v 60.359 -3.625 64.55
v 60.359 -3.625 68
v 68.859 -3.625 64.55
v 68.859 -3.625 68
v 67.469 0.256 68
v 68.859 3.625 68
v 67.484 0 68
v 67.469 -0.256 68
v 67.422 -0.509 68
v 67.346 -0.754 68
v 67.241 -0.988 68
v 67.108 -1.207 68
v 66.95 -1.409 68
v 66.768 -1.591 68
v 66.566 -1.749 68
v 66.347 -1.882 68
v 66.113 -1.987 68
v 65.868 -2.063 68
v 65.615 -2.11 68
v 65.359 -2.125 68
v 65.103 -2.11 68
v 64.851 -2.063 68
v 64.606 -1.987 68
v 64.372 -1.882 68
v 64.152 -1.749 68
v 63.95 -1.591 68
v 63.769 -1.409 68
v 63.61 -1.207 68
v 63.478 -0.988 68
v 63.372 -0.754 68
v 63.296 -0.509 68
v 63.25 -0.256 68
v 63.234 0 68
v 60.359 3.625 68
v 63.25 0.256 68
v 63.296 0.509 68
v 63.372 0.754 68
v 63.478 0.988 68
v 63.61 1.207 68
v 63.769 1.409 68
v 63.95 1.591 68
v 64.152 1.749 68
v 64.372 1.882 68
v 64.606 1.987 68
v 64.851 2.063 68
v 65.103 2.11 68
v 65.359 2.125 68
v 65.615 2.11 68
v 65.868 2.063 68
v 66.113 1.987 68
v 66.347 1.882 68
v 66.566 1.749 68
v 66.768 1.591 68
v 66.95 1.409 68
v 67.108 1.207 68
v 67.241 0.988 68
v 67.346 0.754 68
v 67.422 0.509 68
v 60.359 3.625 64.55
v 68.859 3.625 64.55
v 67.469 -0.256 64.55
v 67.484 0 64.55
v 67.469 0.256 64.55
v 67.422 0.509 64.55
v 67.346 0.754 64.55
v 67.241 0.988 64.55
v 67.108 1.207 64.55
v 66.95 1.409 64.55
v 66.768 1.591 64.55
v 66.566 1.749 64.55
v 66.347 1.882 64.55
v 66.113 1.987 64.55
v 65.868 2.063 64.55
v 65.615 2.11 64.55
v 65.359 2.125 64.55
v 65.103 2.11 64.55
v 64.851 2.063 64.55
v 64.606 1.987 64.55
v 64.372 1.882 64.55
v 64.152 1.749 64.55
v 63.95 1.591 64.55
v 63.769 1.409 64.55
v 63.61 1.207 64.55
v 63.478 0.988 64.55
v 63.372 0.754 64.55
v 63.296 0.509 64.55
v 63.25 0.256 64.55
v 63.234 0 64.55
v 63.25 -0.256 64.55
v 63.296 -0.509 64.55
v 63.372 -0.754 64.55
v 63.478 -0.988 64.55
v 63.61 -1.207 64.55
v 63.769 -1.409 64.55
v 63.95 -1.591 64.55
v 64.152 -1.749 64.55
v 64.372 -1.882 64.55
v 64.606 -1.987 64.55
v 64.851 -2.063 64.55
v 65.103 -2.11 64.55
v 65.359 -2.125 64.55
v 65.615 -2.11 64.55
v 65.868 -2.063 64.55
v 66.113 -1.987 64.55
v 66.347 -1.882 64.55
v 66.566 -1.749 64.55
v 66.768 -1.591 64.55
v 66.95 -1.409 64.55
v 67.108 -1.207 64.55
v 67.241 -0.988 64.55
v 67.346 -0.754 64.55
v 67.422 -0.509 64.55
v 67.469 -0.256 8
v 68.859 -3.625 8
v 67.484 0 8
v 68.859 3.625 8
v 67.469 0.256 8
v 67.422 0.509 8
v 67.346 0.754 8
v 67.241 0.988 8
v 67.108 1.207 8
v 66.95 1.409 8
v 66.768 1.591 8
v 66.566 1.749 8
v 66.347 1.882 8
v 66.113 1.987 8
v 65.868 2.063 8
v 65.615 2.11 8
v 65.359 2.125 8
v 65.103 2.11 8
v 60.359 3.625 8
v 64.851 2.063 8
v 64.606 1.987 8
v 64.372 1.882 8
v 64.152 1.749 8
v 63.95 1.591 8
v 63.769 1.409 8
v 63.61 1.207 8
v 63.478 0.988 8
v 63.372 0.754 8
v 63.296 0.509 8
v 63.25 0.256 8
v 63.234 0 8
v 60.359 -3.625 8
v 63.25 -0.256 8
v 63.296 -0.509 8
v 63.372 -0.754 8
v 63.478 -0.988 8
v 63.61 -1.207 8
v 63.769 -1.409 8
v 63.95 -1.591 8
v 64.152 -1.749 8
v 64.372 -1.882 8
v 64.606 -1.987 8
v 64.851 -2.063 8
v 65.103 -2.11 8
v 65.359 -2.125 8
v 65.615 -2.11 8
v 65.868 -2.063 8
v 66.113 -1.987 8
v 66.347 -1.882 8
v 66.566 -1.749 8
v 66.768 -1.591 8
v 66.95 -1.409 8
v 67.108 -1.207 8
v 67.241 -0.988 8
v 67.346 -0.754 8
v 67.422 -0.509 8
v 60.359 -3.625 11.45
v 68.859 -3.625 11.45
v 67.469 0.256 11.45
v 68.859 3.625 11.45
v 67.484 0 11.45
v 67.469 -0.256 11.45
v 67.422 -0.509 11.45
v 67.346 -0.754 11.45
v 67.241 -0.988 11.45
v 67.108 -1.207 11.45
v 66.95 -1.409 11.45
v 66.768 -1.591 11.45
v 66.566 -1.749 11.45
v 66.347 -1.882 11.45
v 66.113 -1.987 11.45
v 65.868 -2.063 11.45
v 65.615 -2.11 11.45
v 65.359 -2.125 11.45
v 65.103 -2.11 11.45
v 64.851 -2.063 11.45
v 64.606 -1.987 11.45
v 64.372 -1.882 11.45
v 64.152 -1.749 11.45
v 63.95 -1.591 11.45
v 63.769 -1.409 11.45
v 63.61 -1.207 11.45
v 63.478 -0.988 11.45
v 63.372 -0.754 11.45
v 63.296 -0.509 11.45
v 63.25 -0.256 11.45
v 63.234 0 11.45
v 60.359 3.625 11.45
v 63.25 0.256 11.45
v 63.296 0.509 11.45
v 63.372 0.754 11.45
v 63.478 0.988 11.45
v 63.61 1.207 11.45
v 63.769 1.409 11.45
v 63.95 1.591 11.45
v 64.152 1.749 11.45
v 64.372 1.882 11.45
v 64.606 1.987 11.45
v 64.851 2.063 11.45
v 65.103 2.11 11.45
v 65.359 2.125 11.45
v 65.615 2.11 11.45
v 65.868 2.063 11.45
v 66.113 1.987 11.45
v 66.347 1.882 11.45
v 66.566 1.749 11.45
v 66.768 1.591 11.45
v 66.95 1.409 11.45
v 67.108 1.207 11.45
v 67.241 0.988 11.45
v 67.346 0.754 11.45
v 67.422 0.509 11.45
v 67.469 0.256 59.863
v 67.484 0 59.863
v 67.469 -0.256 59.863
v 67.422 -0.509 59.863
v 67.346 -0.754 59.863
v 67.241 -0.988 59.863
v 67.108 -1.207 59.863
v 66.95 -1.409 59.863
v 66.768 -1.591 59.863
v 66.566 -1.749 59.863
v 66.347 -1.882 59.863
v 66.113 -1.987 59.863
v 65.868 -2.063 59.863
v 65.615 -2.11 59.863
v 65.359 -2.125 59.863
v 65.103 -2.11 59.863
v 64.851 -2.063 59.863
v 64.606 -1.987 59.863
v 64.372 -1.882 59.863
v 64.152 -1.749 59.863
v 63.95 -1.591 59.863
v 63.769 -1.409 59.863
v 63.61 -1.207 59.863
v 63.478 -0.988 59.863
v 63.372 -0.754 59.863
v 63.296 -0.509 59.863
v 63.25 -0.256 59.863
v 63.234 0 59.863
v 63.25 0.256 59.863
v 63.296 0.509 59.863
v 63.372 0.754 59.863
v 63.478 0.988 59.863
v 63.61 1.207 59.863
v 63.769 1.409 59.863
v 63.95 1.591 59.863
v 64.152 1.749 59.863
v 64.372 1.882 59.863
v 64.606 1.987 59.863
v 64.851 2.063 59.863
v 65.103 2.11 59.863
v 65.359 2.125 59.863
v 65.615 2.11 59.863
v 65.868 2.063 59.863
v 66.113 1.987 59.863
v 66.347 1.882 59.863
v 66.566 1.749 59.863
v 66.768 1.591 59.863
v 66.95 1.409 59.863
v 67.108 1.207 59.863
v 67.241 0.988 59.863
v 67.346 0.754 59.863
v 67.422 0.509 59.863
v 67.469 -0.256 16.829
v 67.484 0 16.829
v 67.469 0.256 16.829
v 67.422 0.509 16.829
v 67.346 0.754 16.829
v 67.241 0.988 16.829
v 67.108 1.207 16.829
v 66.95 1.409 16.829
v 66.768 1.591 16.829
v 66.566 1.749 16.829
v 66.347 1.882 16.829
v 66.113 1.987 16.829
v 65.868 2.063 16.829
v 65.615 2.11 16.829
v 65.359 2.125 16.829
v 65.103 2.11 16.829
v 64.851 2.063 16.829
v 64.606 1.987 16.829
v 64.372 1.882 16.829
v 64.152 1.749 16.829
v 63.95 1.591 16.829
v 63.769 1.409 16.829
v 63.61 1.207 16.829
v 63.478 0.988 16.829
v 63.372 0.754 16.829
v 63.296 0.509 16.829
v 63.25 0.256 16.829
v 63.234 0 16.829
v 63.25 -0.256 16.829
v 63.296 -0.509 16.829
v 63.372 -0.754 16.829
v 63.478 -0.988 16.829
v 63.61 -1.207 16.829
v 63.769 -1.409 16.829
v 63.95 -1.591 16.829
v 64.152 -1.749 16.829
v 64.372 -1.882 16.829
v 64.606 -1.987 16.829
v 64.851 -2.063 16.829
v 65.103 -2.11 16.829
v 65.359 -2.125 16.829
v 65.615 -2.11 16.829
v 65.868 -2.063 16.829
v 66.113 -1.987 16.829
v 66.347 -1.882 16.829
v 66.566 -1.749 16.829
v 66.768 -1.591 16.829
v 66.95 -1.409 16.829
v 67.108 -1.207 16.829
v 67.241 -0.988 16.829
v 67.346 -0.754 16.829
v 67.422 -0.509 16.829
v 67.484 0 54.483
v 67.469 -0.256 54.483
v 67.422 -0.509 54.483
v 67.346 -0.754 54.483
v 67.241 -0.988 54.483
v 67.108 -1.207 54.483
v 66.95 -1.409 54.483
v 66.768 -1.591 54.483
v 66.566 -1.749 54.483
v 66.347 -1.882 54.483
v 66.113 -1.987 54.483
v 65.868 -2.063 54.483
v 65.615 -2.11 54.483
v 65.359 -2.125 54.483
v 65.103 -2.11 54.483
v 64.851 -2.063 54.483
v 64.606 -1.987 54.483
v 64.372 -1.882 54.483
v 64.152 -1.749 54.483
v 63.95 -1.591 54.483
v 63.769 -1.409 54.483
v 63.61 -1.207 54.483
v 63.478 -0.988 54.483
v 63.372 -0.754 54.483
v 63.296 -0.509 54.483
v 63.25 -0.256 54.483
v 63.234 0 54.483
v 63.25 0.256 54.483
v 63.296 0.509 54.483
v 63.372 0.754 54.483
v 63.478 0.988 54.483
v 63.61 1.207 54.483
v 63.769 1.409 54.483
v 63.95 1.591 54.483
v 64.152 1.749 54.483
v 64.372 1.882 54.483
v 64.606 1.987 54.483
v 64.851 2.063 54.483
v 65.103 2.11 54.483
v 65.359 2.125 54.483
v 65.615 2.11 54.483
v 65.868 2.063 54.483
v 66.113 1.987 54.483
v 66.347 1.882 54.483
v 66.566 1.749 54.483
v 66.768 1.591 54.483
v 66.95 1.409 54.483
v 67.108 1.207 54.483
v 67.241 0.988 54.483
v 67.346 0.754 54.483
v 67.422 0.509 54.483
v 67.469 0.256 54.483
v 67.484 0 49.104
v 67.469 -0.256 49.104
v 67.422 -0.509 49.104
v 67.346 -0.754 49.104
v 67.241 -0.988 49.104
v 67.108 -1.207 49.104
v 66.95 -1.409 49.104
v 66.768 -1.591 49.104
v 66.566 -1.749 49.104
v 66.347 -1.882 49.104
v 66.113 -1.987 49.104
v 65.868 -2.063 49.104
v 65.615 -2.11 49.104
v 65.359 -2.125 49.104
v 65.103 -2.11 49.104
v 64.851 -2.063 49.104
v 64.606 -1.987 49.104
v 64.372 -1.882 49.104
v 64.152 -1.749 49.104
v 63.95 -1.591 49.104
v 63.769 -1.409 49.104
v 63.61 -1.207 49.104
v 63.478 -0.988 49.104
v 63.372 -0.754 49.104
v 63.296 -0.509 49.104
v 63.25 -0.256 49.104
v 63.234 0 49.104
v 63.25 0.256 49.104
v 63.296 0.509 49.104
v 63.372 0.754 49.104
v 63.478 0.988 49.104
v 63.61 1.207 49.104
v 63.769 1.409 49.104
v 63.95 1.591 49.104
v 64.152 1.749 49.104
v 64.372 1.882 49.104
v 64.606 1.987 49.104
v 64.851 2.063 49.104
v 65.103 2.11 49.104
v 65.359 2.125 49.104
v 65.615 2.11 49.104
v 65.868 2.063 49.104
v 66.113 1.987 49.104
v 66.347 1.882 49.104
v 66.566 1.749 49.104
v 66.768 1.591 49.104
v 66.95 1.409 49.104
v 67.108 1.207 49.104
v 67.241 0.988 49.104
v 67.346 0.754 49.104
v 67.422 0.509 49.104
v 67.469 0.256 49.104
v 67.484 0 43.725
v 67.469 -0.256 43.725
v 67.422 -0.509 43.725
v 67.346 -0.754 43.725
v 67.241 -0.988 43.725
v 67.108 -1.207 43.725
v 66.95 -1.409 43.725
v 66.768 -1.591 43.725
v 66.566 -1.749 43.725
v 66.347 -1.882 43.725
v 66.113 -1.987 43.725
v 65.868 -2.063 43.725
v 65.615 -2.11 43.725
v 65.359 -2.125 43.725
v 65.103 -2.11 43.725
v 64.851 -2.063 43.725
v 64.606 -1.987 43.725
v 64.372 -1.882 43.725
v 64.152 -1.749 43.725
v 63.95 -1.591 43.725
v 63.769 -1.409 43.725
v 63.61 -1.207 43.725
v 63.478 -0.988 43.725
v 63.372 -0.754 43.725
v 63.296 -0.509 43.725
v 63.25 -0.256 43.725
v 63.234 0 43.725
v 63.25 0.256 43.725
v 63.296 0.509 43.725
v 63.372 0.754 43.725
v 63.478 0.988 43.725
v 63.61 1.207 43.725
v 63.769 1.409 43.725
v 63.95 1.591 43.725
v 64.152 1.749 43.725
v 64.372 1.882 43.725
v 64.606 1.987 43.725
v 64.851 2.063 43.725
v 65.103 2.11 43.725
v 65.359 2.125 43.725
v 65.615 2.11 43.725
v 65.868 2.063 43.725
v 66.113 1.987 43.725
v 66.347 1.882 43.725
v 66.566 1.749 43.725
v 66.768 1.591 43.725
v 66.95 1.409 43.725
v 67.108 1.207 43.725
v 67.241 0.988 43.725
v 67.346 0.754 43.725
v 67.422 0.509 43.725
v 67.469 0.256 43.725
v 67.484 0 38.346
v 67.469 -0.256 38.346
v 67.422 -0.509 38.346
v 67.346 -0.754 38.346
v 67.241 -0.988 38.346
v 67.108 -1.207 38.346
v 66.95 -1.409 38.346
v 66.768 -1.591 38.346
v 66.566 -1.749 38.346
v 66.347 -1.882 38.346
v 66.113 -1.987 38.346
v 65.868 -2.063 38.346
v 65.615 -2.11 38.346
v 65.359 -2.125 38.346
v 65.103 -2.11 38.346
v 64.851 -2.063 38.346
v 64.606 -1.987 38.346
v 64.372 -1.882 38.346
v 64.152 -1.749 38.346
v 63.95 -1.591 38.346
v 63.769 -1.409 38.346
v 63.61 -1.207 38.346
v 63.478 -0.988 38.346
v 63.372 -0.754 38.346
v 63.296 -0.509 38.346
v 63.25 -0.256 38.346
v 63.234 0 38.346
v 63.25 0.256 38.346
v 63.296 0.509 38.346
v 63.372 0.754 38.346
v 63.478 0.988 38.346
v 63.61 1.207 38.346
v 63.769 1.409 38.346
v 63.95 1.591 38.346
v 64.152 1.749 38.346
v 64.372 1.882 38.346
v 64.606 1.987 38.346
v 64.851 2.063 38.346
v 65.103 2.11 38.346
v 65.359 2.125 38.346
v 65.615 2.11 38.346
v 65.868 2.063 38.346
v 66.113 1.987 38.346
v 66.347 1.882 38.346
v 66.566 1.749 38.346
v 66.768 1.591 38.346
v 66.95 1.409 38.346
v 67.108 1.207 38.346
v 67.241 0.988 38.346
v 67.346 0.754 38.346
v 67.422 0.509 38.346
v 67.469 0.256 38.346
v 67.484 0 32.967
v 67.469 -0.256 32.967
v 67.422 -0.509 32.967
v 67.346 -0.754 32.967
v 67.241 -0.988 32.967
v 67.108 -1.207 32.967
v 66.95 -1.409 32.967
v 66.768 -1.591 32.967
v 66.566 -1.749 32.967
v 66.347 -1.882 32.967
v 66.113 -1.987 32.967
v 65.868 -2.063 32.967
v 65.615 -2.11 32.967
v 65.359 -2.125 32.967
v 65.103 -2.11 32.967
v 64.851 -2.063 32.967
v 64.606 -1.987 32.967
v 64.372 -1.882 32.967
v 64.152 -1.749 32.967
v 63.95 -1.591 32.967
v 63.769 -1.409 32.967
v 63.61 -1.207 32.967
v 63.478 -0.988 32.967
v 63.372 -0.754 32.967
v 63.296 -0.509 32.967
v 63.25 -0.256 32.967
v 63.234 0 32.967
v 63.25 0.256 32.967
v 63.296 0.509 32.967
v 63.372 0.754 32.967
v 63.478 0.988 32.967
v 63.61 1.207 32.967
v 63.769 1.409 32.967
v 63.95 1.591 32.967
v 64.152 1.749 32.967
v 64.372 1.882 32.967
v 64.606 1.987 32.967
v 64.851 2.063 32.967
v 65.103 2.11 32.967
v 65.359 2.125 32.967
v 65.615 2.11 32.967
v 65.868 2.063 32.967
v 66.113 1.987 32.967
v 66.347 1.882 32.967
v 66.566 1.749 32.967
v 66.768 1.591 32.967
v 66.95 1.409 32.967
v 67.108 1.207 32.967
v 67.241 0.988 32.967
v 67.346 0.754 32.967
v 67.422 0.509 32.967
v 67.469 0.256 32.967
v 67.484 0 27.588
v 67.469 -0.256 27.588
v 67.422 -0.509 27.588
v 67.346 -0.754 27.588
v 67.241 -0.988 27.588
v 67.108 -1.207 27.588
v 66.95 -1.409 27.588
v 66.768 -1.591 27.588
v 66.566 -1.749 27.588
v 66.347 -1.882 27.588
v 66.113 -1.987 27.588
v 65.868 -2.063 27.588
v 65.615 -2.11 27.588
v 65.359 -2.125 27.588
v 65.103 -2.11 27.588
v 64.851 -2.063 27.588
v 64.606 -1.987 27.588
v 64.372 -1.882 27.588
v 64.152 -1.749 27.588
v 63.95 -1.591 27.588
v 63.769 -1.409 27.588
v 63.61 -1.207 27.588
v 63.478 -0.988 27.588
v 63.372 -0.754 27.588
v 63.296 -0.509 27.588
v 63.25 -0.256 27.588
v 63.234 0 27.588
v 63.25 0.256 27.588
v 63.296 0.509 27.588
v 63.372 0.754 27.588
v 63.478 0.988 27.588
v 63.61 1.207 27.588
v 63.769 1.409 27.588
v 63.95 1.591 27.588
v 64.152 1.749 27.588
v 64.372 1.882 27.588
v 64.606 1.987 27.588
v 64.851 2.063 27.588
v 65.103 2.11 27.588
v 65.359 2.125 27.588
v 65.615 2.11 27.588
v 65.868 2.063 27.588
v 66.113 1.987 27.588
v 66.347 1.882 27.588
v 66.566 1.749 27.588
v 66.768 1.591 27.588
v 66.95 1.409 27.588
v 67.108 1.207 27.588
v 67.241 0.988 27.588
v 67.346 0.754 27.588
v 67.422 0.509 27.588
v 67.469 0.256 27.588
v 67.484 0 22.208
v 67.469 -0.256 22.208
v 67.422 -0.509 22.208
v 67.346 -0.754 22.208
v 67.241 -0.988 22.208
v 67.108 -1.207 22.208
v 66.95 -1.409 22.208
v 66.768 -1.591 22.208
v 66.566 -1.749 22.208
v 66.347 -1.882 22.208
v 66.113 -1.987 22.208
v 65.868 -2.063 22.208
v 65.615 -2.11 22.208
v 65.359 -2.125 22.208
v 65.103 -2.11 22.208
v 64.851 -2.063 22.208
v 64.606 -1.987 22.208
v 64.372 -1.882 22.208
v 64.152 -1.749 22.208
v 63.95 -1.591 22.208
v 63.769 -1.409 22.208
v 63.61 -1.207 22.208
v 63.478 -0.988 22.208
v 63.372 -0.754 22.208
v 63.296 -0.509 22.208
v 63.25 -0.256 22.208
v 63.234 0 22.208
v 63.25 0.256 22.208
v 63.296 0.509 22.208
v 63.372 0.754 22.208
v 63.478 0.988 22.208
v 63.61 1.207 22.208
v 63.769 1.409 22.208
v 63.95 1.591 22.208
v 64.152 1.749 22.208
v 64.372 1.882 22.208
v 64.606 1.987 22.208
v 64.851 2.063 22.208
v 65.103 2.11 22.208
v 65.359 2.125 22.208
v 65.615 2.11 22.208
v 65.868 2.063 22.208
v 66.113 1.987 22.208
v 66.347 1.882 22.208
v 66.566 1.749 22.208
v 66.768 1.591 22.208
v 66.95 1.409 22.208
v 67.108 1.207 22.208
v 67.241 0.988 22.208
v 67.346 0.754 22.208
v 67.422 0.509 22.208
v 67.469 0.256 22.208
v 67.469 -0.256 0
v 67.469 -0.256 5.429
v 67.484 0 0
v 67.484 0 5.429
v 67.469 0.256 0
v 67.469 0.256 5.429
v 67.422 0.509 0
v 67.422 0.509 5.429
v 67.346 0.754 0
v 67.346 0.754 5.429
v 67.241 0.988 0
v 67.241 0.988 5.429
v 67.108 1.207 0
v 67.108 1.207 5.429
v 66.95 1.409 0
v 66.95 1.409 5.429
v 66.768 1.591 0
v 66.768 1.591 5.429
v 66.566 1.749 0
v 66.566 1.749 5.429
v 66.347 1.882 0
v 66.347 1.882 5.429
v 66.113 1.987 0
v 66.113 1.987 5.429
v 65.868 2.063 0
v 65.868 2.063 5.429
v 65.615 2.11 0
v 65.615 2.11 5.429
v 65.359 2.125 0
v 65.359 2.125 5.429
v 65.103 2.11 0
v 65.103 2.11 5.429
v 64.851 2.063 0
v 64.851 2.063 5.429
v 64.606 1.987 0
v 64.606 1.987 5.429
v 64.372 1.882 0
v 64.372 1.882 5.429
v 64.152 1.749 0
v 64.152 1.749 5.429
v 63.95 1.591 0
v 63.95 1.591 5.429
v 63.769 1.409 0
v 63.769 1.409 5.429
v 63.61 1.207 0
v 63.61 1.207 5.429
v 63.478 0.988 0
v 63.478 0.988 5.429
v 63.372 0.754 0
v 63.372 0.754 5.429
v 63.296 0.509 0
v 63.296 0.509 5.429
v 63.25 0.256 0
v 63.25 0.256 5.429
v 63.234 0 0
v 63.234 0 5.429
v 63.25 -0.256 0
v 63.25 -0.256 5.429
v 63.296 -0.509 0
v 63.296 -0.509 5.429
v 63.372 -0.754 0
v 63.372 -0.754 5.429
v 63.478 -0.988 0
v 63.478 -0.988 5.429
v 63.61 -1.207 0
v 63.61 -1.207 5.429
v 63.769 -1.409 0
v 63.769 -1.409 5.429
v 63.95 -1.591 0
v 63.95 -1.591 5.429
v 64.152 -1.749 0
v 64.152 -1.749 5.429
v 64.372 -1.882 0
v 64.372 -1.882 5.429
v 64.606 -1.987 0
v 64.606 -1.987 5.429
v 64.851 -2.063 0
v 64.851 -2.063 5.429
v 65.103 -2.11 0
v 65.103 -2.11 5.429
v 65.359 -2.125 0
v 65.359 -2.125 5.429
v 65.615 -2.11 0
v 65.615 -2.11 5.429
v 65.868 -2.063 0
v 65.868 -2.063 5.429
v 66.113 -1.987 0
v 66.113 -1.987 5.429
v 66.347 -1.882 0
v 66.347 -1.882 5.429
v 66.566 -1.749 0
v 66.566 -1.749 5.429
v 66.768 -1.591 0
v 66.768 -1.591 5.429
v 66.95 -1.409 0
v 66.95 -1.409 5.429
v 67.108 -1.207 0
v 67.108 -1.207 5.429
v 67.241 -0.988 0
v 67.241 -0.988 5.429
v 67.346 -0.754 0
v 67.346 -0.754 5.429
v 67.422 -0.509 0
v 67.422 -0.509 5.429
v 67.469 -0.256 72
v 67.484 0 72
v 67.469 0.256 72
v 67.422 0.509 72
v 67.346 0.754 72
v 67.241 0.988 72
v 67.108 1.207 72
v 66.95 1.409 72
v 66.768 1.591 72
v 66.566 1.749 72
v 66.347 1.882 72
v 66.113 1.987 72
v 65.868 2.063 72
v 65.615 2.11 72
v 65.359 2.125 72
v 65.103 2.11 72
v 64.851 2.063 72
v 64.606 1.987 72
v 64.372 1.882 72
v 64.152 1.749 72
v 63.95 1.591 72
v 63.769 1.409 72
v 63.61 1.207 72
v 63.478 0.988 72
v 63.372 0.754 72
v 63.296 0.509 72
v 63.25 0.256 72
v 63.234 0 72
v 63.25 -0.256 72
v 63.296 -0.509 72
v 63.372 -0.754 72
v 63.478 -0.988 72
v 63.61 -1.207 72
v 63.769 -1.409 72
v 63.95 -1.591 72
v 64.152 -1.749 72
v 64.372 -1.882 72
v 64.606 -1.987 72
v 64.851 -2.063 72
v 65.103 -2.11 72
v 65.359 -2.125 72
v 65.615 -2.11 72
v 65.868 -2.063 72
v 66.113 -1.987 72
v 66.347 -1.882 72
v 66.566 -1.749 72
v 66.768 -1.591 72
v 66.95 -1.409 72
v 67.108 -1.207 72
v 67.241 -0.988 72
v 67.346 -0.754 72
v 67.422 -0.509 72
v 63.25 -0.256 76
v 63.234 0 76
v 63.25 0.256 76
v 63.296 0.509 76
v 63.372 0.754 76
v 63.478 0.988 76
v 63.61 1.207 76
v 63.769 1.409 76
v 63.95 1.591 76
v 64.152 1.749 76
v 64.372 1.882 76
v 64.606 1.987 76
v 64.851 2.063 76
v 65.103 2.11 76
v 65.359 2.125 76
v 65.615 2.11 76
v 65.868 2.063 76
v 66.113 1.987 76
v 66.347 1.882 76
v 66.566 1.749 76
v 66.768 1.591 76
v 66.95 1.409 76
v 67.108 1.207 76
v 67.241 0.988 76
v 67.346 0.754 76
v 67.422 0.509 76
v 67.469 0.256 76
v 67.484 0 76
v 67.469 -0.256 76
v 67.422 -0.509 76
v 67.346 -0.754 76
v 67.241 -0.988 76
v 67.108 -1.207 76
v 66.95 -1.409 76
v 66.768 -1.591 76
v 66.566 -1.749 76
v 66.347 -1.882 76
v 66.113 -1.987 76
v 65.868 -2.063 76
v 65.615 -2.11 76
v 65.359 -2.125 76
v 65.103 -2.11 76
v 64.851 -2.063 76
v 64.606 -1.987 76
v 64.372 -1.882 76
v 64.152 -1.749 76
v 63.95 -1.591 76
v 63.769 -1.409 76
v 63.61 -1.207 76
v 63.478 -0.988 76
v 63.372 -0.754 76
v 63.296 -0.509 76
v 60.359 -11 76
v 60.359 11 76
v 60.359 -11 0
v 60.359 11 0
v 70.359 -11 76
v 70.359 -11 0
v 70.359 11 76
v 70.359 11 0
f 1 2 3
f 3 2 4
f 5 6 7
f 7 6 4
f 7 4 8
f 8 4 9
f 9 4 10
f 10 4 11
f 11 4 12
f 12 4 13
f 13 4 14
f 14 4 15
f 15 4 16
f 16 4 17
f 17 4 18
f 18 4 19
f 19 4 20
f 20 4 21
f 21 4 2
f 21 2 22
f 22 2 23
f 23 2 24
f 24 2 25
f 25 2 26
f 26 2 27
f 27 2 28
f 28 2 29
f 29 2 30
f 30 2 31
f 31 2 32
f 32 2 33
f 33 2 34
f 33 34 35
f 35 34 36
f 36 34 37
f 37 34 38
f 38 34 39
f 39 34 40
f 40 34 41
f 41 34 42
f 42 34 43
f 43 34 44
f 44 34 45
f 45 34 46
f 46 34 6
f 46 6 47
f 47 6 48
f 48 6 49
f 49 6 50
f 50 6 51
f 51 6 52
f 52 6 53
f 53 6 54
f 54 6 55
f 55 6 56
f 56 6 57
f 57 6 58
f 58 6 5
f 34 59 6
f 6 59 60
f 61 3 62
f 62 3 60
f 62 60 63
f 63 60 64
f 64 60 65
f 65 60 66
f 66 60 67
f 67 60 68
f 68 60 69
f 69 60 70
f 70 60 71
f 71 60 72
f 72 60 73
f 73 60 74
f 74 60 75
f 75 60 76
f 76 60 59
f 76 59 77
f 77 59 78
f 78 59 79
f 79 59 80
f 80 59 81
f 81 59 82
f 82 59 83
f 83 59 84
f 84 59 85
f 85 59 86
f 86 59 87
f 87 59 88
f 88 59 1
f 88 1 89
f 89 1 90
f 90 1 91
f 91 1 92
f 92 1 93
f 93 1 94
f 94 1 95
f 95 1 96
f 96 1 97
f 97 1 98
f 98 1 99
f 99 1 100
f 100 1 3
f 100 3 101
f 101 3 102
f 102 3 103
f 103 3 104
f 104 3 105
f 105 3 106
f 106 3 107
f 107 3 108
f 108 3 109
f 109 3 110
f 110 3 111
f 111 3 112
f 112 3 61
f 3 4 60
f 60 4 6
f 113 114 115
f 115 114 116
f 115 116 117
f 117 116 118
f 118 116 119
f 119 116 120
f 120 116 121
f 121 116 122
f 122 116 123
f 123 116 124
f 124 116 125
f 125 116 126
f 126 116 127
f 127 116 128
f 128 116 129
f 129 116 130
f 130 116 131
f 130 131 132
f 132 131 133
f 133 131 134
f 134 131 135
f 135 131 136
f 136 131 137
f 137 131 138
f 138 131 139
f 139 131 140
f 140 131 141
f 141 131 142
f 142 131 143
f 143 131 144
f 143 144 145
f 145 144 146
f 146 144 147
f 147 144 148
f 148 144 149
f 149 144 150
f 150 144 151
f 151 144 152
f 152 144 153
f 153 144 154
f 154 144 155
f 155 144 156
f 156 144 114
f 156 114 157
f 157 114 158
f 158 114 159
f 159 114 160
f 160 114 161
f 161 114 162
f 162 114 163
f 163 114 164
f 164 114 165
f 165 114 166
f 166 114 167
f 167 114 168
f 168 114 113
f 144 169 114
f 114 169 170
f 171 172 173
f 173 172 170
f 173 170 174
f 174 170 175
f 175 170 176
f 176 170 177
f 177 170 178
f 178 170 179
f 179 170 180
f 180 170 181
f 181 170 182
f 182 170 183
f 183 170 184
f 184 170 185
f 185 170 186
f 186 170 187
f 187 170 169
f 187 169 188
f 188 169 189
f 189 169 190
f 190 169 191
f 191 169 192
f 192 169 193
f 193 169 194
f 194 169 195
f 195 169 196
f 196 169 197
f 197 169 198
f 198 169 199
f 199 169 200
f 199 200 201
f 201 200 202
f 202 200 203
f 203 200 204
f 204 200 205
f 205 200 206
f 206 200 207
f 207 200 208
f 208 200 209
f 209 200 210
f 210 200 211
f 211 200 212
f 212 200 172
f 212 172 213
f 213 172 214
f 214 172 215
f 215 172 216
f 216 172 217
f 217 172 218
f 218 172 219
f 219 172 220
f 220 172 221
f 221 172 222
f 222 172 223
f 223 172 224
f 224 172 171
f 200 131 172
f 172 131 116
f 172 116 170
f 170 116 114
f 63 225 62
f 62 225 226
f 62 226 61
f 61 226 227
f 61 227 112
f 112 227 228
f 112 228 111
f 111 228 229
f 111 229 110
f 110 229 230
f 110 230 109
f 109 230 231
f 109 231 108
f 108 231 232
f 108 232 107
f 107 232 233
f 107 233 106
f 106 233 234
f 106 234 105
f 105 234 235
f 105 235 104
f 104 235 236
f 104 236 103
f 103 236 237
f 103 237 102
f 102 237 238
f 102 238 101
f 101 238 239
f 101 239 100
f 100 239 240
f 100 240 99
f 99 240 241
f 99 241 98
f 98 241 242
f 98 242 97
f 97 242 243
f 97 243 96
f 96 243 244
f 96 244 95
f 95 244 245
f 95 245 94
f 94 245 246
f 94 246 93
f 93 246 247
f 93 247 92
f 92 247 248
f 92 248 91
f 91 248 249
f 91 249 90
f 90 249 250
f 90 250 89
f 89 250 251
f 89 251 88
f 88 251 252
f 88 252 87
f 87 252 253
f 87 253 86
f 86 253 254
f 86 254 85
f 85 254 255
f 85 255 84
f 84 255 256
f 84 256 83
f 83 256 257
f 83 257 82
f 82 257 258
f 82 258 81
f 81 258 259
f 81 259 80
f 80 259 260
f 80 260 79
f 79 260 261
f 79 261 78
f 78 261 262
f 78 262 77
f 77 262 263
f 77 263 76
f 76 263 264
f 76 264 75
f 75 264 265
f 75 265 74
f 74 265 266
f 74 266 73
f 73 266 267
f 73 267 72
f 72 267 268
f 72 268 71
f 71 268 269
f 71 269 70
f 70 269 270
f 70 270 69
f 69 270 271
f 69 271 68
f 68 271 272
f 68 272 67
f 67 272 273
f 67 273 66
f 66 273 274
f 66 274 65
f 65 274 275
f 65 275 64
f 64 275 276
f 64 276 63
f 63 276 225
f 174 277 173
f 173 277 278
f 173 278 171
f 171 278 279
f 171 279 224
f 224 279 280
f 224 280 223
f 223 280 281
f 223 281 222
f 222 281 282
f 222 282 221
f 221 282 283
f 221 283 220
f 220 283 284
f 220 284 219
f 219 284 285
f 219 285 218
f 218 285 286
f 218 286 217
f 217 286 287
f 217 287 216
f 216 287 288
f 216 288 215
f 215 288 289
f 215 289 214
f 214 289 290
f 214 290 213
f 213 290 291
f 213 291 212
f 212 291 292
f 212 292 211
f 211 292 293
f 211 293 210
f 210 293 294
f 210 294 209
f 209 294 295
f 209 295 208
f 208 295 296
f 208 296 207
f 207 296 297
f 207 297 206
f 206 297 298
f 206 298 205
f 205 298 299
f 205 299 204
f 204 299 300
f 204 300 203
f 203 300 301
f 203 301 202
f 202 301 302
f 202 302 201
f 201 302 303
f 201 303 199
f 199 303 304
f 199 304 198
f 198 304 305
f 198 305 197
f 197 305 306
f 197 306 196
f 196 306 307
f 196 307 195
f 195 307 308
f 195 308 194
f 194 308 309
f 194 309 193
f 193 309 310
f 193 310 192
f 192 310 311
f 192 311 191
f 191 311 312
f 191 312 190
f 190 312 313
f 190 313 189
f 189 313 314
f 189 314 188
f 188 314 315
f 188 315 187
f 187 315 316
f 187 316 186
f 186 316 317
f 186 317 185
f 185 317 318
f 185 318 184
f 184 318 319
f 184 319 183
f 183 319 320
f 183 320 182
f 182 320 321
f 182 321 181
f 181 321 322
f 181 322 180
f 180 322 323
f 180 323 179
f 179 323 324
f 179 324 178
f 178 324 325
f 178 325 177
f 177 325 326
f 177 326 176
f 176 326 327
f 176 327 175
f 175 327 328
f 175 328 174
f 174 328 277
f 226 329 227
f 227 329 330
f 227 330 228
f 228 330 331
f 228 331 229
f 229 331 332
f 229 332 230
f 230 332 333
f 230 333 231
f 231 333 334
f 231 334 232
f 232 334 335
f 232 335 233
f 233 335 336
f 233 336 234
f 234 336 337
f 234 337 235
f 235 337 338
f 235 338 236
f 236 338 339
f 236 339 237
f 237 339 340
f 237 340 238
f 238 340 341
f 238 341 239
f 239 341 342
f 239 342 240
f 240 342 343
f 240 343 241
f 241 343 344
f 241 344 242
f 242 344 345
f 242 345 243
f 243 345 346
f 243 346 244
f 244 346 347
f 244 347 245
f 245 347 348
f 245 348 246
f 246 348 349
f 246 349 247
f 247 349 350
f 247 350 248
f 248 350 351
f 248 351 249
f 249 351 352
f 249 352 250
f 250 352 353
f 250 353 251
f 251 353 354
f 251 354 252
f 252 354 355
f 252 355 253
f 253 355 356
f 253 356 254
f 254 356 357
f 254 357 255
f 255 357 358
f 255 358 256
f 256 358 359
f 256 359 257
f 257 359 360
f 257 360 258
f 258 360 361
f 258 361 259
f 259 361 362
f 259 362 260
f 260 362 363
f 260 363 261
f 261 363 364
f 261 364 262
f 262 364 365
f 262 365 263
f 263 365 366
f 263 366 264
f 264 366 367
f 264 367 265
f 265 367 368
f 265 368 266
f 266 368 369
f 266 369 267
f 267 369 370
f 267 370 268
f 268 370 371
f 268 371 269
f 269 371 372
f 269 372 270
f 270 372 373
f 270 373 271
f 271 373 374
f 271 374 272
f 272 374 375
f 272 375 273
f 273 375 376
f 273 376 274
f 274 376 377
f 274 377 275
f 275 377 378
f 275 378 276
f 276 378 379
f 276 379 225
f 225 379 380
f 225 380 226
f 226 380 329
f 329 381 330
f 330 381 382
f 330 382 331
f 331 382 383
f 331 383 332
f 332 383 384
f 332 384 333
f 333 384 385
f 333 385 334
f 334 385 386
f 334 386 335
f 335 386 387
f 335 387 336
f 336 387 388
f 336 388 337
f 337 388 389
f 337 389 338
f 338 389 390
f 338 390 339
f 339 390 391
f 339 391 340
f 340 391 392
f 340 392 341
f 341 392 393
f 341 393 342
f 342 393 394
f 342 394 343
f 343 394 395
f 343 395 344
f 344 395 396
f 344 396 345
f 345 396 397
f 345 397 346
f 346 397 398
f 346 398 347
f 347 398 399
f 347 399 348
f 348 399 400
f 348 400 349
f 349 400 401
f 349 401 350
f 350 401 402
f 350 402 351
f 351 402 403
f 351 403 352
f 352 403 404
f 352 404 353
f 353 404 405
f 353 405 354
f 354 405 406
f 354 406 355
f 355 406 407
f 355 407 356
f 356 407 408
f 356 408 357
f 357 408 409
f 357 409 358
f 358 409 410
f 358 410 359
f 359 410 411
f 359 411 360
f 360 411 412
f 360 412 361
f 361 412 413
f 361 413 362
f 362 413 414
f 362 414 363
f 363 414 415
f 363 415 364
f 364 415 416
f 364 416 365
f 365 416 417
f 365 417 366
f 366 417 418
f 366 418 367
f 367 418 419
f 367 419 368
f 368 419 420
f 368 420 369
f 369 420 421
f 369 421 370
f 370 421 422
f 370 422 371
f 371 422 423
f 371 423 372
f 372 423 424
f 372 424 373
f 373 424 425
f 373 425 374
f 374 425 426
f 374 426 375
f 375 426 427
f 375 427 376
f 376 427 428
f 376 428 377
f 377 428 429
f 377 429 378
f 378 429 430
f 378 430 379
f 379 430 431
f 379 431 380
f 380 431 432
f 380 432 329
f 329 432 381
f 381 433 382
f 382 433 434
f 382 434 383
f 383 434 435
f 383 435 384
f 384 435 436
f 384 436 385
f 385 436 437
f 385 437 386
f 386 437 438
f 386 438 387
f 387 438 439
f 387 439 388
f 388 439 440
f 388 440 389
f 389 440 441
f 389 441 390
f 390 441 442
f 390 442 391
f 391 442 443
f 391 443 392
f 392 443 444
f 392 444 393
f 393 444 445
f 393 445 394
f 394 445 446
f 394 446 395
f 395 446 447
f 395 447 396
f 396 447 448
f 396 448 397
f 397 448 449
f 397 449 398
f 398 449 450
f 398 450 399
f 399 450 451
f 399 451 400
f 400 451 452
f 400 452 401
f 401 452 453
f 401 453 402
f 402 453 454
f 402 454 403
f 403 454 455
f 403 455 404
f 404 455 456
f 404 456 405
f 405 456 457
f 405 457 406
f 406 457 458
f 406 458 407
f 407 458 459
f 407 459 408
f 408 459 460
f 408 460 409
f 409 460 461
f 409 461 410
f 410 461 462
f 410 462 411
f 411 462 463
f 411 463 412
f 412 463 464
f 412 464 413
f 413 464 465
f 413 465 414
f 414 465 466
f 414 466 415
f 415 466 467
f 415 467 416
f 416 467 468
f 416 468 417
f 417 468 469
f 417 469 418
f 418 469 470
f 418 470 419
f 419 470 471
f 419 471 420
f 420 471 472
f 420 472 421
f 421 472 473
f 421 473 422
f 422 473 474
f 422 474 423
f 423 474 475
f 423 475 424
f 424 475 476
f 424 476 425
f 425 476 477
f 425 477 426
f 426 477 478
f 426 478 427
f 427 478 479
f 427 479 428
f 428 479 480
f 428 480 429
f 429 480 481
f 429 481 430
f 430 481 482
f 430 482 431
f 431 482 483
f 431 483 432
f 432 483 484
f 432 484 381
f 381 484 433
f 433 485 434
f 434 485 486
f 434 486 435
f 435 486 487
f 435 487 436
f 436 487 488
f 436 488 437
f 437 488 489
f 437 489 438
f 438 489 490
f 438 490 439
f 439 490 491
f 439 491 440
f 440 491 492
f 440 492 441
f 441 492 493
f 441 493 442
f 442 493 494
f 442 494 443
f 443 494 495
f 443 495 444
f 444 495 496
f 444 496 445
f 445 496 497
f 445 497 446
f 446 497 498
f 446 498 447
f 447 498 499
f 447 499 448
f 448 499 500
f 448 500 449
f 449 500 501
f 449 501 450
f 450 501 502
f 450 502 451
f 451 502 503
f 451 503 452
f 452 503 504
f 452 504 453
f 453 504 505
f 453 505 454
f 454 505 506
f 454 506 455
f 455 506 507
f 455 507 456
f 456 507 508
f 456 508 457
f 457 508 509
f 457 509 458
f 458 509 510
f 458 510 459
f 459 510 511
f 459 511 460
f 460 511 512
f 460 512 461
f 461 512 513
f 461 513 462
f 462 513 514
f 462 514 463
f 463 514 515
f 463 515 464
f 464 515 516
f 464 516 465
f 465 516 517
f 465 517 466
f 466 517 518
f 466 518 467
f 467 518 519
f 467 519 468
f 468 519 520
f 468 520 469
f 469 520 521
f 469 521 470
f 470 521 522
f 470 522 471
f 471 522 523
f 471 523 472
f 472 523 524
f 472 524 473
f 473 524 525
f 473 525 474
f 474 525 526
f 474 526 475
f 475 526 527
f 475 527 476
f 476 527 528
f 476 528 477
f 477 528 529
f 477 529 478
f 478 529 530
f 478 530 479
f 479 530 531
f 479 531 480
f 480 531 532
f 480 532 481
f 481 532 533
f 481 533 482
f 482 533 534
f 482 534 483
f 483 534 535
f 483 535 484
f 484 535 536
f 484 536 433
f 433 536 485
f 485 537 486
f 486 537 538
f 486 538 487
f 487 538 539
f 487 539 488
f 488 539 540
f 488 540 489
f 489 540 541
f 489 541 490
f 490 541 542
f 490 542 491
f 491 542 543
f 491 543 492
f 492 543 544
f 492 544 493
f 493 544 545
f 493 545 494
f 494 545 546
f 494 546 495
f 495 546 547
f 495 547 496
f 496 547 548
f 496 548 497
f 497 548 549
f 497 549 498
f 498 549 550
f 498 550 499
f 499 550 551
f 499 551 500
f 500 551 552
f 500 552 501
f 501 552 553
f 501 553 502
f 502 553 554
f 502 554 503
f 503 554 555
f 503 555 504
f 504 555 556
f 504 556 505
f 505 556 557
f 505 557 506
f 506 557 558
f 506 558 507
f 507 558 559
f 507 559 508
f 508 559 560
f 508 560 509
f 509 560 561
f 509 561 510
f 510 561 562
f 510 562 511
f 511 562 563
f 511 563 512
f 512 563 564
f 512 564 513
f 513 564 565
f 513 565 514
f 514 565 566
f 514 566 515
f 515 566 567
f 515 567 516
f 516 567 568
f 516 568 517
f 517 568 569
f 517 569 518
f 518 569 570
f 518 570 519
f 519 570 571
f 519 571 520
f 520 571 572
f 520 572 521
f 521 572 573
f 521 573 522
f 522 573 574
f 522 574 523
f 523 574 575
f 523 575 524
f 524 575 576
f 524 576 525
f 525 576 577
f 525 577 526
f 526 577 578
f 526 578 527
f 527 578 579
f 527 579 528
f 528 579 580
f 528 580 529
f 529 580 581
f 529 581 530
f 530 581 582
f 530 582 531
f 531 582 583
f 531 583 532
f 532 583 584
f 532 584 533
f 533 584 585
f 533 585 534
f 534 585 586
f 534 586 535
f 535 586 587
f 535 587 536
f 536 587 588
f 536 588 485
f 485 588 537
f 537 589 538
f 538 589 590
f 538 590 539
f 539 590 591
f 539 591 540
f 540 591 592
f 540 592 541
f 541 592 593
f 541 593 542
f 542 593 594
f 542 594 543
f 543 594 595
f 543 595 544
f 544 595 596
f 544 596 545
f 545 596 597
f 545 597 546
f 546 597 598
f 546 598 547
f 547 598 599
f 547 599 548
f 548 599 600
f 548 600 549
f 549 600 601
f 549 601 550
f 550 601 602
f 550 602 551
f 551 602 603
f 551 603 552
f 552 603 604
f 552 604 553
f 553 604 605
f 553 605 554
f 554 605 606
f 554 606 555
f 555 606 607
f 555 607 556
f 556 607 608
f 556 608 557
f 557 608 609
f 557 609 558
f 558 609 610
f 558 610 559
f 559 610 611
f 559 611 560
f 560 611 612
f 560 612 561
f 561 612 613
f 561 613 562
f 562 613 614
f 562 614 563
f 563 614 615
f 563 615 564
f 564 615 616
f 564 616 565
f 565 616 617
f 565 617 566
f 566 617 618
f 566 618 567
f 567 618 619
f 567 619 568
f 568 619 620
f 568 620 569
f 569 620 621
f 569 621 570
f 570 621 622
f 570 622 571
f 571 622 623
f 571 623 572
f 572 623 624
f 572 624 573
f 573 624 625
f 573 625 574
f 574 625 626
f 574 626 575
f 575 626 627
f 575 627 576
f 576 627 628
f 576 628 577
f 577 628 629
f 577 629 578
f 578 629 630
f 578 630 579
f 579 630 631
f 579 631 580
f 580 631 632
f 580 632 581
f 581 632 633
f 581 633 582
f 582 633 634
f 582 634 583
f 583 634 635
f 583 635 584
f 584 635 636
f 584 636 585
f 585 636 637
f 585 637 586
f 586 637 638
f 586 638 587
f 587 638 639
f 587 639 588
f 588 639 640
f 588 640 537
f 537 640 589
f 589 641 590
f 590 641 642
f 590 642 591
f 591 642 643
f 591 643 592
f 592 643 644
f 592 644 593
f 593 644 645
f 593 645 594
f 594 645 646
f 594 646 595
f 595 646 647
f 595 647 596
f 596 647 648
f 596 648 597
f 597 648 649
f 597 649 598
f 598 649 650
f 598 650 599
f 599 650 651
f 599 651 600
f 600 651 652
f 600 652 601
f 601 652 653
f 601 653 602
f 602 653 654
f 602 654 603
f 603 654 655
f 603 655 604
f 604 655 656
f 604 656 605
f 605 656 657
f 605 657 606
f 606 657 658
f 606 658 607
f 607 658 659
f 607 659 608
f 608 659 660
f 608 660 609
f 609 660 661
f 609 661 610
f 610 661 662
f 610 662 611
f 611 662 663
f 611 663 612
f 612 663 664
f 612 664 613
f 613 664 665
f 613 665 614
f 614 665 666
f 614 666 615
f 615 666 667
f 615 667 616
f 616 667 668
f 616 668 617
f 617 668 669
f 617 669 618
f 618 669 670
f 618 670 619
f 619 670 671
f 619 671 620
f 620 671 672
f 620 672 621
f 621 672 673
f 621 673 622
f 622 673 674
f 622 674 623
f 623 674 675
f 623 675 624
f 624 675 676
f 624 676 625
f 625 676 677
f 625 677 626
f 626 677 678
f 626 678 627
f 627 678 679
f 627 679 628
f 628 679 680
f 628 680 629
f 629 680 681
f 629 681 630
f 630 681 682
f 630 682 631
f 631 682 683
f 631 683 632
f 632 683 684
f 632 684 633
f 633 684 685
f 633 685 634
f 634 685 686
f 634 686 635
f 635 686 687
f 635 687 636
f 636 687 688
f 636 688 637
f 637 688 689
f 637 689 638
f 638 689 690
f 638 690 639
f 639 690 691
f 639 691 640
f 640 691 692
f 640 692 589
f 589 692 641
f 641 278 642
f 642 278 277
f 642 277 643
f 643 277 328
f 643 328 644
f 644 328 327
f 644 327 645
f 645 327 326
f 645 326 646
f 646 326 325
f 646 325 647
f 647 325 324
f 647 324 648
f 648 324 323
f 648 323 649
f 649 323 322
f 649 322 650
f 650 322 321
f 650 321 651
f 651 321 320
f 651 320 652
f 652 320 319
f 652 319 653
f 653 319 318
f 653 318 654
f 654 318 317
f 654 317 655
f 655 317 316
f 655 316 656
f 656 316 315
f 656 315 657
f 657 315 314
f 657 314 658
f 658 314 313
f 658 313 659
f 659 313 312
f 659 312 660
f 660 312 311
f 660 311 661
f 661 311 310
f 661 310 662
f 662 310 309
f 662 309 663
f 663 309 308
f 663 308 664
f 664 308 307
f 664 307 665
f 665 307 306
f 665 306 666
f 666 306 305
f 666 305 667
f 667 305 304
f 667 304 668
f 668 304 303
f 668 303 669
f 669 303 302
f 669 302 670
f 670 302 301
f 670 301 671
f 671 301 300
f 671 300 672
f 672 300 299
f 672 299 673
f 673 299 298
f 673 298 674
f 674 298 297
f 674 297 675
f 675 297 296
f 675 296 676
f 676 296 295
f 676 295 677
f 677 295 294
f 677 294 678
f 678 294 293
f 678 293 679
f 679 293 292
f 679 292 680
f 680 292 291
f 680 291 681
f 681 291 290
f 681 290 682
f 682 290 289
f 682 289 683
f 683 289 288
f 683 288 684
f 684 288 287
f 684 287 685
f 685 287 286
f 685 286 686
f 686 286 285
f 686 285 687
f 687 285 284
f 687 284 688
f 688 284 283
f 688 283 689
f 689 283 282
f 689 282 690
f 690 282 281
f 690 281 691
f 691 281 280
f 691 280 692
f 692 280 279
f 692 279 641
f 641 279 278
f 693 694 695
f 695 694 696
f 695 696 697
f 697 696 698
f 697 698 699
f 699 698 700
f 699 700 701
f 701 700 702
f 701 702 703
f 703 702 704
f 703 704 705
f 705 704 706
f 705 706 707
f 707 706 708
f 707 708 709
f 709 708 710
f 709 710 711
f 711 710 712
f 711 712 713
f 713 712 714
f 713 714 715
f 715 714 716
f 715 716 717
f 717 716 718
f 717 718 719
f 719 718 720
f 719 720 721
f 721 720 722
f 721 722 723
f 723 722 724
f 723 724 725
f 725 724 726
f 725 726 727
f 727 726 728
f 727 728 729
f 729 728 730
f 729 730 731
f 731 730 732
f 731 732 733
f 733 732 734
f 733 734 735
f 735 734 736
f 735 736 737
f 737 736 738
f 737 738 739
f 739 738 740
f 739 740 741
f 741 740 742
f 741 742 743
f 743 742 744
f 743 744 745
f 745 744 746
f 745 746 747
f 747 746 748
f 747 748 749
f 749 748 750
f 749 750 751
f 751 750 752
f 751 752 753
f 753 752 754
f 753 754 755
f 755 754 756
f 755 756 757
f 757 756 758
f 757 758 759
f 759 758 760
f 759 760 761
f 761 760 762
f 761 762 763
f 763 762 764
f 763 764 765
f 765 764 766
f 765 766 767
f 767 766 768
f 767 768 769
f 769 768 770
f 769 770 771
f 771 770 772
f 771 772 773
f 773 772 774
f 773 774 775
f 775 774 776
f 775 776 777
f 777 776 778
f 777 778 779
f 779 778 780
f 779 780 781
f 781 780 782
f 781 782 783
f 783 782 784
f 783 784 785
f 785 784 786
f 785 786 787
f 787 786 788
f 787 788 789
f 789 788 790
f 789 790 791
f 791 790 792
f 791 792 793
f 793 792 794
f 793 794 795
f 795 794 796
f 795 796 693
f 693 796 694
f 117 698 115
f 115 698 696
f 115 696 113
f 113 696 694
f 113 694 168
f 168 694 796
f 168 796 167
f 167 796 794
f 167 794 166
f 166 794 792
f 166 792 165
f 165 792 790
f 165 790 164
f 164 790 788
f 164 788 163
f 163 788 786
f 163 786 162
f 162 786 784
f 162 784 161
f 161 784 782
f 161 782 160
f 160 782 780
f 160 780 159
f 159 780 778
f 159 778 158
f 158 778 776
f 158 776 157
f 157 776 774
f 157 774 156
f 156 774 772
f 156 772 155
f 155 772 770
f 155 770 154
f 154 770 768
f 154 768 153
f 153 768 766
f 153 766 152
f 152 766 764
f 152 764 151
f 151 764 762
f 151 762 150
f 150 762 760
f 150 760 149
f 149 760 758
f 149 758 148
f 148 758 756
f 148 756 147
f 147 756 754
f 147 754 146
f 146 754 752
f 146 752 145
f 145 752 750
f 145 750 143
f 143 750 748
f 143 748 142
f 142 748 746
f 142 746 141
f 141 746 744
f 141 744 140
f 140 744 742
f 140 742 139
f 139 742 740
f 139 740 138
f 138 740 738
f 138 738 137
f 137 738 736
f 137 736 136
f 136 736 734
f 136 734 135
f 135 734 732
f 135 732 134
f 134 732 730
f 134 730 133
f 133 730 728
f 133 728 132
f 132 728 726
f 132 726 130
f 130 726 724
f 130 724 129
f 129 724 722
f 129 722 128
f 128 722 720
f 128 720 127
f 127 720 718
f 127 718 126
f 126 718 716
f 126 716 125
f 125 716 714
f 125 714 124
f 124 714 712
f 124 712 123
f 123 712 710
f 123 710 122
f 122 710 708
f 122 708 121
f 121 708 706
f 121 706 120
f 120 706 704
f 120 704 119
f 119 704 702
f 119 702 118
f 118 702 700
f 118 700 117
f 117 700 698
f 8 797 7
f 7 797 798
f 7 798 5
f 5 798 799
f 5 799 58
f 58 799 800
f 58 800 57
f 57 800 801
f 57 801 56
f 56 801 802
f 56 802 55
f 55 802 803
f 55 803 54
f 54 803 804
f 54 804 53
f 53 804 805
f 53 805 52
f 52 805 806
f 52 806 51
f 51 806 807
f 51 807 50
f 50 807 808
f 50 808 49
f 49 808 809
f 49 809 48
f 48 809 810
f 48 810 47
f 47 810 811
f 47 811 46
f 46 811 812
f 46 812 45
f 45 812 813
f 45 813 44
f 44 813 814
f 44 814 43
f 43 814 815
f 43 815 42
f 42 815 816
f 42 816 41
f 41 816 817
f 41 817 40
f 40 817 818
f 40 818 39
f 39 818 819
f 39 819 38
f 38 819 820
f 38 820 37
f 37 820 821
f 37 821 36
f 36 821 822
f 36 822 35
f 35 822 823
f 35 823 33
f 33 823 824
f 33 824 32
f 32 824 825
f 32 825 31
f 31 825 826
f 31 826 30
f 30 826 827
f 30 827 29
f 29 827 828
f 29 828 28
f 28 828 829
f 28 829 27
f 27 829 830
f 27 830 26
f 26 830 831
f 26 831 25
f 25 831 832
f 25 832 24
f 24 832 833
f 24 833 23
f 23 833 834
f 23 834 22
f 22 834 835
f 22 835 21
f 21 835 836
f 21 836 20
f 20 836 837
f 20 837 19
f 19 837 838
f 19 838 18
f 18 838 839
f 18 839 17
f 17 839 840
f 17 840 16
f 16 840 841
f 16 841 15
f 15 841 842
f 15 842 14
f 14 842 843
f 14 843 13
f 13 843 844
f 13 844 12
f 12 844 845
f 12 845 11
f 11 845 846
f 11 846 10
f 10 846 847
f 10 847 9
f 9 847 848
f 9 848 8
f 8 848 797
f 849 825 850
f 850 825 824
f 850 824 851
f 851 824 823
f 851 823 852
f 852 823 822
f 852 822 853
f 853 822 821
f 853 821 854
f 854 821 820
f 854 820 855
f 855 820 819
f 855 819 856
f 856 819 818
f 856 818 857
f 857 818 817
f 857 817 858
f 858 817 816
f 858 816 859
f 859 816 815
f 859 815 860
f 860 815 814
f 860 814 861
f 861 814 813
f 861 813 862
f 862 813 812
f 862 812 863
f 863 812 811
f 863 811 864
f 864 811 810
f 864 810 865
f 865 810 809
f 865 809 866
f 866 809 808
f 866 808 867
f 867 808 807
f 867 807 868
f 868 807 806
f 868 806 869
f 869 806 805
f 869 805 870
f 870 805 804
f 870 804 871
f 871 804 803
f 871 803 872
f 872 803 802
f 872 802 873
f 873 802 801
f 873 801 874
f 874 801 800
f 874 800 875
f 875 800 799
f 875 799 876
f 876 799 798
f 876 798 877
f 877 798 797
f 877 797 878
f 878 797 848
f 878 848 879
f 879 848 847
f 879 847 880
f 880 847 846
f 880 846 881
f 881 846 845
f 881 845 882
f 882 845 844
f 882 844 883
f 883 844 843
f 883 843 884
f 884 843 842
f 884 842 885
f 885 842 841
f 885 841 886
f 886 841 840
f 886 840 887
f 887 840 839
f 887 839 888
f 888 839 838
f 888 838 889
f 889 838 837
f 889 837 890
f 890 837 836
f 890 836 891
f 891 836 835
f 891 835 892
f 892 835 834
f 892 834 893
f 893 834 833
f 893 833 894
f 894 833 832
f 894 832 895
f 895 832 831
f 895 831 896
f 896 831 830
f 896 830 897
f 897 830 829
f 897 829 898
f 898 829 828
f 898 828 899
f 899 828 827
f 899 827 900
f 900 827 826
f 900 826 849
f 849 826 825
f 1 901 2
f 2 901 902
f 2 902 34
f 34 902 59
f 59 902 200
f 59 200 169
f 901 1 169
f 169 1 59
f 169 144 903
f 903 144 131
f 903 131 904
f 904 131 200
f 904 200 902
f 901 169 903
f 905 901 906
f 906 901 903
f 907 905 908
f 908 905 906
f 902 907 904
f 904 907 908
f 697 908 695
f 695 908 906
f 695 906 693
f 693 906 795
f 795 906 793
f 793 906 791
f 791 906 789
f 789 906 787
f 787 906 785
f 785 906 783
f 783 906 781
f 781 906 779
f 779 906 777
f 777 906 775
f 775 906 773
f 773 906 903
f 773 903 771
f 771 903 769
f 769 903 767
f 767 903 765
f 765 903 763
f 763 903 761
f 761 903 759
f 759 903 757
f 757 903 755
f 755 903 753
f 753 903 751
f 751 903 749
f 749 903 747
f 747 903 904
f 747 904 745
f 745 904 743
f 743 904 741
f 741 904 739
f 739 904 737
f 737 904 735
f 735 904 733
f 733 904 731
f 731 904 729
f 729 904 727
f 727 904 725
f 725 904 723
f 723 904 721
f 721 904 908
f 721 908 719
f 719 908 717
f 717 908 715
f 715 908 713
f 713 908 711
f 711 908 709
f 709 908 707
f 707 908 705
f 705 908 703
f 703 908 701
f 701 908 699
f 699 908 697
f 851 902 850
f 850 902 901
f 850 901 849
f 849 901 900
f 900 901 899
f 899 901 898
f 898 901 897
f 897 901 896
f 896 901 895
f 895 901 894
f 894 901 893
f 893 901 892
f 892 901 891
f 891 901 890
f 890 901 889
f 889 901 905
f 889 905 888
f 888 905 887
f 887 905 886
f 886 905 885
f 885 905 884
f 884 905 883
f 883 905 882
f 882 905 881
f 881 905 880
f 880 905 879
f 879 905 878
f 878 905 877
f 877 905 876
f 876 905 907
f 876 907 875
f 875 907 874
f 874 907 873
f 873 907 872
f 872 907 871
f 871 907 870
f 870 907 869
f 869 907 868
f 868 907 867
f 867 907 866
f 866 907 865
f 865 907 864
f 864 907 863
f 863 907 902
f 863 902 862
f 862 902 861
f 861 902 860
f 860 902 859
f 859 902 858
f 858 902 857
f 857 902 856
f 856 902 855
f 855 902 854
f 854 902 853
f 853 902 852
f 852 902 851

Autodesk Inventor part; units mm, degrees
ref_plane "YZ Plane" through (0, 0, 0) normal (1, 0, 0) x (0, 1, 0)
ref_plane "XZ Plane" through (0, 0, 0) normal (0, 1, 0) x (-1, 0, 0)
ref_plane "XY Plane" through (0, 0, 0) normal (0, 0, 1) x (1, 0, 0)
ref_plane "Płaszczyzna konstrukcyjna1" through (0, 0, 0) normal (0, 0, 1) x (1, 0, 0)
sketch "Szkic1" plane through (0, 0, 0) normal (0, 0, 1) x (1, 0, 0)
  line L0 (60.3592, 11) -> (60.3592, -11) projected
  line L1 (70.3592, 11) -> (70.3592, -11) projected
  line L2 (70.3592, -11) -> (60.3592, -11)
  line L3 (60.3592, -11) -> (60.3592, 11)
  line L4 (60.3592, 11) -> (70.3592, 11)
  line L5 (70.3592, 11) -> (70.3592, -11)
  point P0 (0, 0)
extrude "Wyciągnięcie proste1" add sketch "Szkic1" along normal blind 76
sketch "Szkic2" plane through (0, 0, 0) normal (0, 0, -1) x (-1, 0, 0)
  circle A0 centre (-65.3592, 0) radius 2.125
  line L0 (-70.3592, 11) -> (-60.3592, 11) construction
  line L1 (-65.3592, 0) -> (-70.3592, 11) construction
  line L2 (-60.3592, 11) -> (-65.3592, 0) construction
  line L3 (-60.3592, 11) -> (-60.3592, -11) construction
  line L4 (-65.3592, 0) -> (-60.3592, -11) construction
  point P0 (0, 0)
  dimension "d13" = 4.25
extrude "Wyciągnięcie proste3" cut sketch "Szkic2" against normal through all
sketch "Szkic4" plane through (60.3592, -11, 0) normal (-1, 0, 0) x (0, 0, 1)
  line L0 (0, 22) -> (0, 0) projected
  line L1 (0, 0) -> (76, 0) projected
  line L2 (76, 22) -> (76, 0) projected
  line L3 (0, 22) -> (76, 22) projected
  line L4 (68, 7.375) -> (64.55, 7.375)
  line L5 (64.55, 7.375) -> (64.55, 14.625)
  line L6 (64.55, 14.625) -> (68, 14.625)
  line L7 (68, 14.625) -> (68, 7.375)
  line L8 (11.45, 7.375) -> (8, 7.375)
  line L9 (8, 7.375) -> (8, 14.625)
  line L10 (8, 14.625) -> (11.45, 14.625)
  line L11 (11.45, 14.625) -> (11.45, 7.375)
  line L12 (0, 0) -> (76, 0) projected
  line L13 (76, 0) -> (68, 7.375) construction
  line L14 (68, 14.625) -> (76, 22) construction
  point P0 (0, 11)
  dimension "d14" = 7.25
  dimension "d15" = 3.45
  dimension "d16" = 3.45
  dimension "d17" = 8
  dimension "d18" = 8
extrude "Wyciągnięcie proste4" cut sketch "Szkic4" against normal blind 8.5 contours L4 L5 L6 L7 | L8 L9 L10 L11
sketch "Szkic3" plane through (70.3592, -11, 0) normal (1, 0, 0) x (0, 0, -1)
  line L0 (-66, 15) -> (-62.5, 15)
  line L1 (-62.5, 15) -> (-62.5, 7)
  line L2 (-62.5, 7) -> (-66, 7)
  line L3 (-66, 7) -> (-66, 15)
  line L4 (-13.5, 15) -> (-10, 15)
  line L5 (-10, 15) -> (-10, 7)
  line L6 (-10, 7) -> (-13.5, 7)
  line L7 (-13.5, 7) -> (-13.5, 15)
  line L8 (0, 22) -> (-76, 22) projected
  line L9 (0, 0) -> (-76, 0) projected
  line L10 (-76, 0) -> (-76, 22) projected
  line L11 (0, 0) -> (0, 22) projected
  line L12 (-66, 22) -> (-66, 15) construction
  line L13 (-66, 0) -> (-66, 7) construction
  point P0 (0, 11)
  dimension "d2" = 10
  dimension "d3" = 10
  dimension "d4" = 3.5
  dimension "d6" = 8
  dimension "d7" = 3.5
equation "\"d16\" = d15"
equation "\"d18\" = d17"
equation "\"d3\" = d2"
equation "\"d7\" = d4"
properties part number "coupler"
